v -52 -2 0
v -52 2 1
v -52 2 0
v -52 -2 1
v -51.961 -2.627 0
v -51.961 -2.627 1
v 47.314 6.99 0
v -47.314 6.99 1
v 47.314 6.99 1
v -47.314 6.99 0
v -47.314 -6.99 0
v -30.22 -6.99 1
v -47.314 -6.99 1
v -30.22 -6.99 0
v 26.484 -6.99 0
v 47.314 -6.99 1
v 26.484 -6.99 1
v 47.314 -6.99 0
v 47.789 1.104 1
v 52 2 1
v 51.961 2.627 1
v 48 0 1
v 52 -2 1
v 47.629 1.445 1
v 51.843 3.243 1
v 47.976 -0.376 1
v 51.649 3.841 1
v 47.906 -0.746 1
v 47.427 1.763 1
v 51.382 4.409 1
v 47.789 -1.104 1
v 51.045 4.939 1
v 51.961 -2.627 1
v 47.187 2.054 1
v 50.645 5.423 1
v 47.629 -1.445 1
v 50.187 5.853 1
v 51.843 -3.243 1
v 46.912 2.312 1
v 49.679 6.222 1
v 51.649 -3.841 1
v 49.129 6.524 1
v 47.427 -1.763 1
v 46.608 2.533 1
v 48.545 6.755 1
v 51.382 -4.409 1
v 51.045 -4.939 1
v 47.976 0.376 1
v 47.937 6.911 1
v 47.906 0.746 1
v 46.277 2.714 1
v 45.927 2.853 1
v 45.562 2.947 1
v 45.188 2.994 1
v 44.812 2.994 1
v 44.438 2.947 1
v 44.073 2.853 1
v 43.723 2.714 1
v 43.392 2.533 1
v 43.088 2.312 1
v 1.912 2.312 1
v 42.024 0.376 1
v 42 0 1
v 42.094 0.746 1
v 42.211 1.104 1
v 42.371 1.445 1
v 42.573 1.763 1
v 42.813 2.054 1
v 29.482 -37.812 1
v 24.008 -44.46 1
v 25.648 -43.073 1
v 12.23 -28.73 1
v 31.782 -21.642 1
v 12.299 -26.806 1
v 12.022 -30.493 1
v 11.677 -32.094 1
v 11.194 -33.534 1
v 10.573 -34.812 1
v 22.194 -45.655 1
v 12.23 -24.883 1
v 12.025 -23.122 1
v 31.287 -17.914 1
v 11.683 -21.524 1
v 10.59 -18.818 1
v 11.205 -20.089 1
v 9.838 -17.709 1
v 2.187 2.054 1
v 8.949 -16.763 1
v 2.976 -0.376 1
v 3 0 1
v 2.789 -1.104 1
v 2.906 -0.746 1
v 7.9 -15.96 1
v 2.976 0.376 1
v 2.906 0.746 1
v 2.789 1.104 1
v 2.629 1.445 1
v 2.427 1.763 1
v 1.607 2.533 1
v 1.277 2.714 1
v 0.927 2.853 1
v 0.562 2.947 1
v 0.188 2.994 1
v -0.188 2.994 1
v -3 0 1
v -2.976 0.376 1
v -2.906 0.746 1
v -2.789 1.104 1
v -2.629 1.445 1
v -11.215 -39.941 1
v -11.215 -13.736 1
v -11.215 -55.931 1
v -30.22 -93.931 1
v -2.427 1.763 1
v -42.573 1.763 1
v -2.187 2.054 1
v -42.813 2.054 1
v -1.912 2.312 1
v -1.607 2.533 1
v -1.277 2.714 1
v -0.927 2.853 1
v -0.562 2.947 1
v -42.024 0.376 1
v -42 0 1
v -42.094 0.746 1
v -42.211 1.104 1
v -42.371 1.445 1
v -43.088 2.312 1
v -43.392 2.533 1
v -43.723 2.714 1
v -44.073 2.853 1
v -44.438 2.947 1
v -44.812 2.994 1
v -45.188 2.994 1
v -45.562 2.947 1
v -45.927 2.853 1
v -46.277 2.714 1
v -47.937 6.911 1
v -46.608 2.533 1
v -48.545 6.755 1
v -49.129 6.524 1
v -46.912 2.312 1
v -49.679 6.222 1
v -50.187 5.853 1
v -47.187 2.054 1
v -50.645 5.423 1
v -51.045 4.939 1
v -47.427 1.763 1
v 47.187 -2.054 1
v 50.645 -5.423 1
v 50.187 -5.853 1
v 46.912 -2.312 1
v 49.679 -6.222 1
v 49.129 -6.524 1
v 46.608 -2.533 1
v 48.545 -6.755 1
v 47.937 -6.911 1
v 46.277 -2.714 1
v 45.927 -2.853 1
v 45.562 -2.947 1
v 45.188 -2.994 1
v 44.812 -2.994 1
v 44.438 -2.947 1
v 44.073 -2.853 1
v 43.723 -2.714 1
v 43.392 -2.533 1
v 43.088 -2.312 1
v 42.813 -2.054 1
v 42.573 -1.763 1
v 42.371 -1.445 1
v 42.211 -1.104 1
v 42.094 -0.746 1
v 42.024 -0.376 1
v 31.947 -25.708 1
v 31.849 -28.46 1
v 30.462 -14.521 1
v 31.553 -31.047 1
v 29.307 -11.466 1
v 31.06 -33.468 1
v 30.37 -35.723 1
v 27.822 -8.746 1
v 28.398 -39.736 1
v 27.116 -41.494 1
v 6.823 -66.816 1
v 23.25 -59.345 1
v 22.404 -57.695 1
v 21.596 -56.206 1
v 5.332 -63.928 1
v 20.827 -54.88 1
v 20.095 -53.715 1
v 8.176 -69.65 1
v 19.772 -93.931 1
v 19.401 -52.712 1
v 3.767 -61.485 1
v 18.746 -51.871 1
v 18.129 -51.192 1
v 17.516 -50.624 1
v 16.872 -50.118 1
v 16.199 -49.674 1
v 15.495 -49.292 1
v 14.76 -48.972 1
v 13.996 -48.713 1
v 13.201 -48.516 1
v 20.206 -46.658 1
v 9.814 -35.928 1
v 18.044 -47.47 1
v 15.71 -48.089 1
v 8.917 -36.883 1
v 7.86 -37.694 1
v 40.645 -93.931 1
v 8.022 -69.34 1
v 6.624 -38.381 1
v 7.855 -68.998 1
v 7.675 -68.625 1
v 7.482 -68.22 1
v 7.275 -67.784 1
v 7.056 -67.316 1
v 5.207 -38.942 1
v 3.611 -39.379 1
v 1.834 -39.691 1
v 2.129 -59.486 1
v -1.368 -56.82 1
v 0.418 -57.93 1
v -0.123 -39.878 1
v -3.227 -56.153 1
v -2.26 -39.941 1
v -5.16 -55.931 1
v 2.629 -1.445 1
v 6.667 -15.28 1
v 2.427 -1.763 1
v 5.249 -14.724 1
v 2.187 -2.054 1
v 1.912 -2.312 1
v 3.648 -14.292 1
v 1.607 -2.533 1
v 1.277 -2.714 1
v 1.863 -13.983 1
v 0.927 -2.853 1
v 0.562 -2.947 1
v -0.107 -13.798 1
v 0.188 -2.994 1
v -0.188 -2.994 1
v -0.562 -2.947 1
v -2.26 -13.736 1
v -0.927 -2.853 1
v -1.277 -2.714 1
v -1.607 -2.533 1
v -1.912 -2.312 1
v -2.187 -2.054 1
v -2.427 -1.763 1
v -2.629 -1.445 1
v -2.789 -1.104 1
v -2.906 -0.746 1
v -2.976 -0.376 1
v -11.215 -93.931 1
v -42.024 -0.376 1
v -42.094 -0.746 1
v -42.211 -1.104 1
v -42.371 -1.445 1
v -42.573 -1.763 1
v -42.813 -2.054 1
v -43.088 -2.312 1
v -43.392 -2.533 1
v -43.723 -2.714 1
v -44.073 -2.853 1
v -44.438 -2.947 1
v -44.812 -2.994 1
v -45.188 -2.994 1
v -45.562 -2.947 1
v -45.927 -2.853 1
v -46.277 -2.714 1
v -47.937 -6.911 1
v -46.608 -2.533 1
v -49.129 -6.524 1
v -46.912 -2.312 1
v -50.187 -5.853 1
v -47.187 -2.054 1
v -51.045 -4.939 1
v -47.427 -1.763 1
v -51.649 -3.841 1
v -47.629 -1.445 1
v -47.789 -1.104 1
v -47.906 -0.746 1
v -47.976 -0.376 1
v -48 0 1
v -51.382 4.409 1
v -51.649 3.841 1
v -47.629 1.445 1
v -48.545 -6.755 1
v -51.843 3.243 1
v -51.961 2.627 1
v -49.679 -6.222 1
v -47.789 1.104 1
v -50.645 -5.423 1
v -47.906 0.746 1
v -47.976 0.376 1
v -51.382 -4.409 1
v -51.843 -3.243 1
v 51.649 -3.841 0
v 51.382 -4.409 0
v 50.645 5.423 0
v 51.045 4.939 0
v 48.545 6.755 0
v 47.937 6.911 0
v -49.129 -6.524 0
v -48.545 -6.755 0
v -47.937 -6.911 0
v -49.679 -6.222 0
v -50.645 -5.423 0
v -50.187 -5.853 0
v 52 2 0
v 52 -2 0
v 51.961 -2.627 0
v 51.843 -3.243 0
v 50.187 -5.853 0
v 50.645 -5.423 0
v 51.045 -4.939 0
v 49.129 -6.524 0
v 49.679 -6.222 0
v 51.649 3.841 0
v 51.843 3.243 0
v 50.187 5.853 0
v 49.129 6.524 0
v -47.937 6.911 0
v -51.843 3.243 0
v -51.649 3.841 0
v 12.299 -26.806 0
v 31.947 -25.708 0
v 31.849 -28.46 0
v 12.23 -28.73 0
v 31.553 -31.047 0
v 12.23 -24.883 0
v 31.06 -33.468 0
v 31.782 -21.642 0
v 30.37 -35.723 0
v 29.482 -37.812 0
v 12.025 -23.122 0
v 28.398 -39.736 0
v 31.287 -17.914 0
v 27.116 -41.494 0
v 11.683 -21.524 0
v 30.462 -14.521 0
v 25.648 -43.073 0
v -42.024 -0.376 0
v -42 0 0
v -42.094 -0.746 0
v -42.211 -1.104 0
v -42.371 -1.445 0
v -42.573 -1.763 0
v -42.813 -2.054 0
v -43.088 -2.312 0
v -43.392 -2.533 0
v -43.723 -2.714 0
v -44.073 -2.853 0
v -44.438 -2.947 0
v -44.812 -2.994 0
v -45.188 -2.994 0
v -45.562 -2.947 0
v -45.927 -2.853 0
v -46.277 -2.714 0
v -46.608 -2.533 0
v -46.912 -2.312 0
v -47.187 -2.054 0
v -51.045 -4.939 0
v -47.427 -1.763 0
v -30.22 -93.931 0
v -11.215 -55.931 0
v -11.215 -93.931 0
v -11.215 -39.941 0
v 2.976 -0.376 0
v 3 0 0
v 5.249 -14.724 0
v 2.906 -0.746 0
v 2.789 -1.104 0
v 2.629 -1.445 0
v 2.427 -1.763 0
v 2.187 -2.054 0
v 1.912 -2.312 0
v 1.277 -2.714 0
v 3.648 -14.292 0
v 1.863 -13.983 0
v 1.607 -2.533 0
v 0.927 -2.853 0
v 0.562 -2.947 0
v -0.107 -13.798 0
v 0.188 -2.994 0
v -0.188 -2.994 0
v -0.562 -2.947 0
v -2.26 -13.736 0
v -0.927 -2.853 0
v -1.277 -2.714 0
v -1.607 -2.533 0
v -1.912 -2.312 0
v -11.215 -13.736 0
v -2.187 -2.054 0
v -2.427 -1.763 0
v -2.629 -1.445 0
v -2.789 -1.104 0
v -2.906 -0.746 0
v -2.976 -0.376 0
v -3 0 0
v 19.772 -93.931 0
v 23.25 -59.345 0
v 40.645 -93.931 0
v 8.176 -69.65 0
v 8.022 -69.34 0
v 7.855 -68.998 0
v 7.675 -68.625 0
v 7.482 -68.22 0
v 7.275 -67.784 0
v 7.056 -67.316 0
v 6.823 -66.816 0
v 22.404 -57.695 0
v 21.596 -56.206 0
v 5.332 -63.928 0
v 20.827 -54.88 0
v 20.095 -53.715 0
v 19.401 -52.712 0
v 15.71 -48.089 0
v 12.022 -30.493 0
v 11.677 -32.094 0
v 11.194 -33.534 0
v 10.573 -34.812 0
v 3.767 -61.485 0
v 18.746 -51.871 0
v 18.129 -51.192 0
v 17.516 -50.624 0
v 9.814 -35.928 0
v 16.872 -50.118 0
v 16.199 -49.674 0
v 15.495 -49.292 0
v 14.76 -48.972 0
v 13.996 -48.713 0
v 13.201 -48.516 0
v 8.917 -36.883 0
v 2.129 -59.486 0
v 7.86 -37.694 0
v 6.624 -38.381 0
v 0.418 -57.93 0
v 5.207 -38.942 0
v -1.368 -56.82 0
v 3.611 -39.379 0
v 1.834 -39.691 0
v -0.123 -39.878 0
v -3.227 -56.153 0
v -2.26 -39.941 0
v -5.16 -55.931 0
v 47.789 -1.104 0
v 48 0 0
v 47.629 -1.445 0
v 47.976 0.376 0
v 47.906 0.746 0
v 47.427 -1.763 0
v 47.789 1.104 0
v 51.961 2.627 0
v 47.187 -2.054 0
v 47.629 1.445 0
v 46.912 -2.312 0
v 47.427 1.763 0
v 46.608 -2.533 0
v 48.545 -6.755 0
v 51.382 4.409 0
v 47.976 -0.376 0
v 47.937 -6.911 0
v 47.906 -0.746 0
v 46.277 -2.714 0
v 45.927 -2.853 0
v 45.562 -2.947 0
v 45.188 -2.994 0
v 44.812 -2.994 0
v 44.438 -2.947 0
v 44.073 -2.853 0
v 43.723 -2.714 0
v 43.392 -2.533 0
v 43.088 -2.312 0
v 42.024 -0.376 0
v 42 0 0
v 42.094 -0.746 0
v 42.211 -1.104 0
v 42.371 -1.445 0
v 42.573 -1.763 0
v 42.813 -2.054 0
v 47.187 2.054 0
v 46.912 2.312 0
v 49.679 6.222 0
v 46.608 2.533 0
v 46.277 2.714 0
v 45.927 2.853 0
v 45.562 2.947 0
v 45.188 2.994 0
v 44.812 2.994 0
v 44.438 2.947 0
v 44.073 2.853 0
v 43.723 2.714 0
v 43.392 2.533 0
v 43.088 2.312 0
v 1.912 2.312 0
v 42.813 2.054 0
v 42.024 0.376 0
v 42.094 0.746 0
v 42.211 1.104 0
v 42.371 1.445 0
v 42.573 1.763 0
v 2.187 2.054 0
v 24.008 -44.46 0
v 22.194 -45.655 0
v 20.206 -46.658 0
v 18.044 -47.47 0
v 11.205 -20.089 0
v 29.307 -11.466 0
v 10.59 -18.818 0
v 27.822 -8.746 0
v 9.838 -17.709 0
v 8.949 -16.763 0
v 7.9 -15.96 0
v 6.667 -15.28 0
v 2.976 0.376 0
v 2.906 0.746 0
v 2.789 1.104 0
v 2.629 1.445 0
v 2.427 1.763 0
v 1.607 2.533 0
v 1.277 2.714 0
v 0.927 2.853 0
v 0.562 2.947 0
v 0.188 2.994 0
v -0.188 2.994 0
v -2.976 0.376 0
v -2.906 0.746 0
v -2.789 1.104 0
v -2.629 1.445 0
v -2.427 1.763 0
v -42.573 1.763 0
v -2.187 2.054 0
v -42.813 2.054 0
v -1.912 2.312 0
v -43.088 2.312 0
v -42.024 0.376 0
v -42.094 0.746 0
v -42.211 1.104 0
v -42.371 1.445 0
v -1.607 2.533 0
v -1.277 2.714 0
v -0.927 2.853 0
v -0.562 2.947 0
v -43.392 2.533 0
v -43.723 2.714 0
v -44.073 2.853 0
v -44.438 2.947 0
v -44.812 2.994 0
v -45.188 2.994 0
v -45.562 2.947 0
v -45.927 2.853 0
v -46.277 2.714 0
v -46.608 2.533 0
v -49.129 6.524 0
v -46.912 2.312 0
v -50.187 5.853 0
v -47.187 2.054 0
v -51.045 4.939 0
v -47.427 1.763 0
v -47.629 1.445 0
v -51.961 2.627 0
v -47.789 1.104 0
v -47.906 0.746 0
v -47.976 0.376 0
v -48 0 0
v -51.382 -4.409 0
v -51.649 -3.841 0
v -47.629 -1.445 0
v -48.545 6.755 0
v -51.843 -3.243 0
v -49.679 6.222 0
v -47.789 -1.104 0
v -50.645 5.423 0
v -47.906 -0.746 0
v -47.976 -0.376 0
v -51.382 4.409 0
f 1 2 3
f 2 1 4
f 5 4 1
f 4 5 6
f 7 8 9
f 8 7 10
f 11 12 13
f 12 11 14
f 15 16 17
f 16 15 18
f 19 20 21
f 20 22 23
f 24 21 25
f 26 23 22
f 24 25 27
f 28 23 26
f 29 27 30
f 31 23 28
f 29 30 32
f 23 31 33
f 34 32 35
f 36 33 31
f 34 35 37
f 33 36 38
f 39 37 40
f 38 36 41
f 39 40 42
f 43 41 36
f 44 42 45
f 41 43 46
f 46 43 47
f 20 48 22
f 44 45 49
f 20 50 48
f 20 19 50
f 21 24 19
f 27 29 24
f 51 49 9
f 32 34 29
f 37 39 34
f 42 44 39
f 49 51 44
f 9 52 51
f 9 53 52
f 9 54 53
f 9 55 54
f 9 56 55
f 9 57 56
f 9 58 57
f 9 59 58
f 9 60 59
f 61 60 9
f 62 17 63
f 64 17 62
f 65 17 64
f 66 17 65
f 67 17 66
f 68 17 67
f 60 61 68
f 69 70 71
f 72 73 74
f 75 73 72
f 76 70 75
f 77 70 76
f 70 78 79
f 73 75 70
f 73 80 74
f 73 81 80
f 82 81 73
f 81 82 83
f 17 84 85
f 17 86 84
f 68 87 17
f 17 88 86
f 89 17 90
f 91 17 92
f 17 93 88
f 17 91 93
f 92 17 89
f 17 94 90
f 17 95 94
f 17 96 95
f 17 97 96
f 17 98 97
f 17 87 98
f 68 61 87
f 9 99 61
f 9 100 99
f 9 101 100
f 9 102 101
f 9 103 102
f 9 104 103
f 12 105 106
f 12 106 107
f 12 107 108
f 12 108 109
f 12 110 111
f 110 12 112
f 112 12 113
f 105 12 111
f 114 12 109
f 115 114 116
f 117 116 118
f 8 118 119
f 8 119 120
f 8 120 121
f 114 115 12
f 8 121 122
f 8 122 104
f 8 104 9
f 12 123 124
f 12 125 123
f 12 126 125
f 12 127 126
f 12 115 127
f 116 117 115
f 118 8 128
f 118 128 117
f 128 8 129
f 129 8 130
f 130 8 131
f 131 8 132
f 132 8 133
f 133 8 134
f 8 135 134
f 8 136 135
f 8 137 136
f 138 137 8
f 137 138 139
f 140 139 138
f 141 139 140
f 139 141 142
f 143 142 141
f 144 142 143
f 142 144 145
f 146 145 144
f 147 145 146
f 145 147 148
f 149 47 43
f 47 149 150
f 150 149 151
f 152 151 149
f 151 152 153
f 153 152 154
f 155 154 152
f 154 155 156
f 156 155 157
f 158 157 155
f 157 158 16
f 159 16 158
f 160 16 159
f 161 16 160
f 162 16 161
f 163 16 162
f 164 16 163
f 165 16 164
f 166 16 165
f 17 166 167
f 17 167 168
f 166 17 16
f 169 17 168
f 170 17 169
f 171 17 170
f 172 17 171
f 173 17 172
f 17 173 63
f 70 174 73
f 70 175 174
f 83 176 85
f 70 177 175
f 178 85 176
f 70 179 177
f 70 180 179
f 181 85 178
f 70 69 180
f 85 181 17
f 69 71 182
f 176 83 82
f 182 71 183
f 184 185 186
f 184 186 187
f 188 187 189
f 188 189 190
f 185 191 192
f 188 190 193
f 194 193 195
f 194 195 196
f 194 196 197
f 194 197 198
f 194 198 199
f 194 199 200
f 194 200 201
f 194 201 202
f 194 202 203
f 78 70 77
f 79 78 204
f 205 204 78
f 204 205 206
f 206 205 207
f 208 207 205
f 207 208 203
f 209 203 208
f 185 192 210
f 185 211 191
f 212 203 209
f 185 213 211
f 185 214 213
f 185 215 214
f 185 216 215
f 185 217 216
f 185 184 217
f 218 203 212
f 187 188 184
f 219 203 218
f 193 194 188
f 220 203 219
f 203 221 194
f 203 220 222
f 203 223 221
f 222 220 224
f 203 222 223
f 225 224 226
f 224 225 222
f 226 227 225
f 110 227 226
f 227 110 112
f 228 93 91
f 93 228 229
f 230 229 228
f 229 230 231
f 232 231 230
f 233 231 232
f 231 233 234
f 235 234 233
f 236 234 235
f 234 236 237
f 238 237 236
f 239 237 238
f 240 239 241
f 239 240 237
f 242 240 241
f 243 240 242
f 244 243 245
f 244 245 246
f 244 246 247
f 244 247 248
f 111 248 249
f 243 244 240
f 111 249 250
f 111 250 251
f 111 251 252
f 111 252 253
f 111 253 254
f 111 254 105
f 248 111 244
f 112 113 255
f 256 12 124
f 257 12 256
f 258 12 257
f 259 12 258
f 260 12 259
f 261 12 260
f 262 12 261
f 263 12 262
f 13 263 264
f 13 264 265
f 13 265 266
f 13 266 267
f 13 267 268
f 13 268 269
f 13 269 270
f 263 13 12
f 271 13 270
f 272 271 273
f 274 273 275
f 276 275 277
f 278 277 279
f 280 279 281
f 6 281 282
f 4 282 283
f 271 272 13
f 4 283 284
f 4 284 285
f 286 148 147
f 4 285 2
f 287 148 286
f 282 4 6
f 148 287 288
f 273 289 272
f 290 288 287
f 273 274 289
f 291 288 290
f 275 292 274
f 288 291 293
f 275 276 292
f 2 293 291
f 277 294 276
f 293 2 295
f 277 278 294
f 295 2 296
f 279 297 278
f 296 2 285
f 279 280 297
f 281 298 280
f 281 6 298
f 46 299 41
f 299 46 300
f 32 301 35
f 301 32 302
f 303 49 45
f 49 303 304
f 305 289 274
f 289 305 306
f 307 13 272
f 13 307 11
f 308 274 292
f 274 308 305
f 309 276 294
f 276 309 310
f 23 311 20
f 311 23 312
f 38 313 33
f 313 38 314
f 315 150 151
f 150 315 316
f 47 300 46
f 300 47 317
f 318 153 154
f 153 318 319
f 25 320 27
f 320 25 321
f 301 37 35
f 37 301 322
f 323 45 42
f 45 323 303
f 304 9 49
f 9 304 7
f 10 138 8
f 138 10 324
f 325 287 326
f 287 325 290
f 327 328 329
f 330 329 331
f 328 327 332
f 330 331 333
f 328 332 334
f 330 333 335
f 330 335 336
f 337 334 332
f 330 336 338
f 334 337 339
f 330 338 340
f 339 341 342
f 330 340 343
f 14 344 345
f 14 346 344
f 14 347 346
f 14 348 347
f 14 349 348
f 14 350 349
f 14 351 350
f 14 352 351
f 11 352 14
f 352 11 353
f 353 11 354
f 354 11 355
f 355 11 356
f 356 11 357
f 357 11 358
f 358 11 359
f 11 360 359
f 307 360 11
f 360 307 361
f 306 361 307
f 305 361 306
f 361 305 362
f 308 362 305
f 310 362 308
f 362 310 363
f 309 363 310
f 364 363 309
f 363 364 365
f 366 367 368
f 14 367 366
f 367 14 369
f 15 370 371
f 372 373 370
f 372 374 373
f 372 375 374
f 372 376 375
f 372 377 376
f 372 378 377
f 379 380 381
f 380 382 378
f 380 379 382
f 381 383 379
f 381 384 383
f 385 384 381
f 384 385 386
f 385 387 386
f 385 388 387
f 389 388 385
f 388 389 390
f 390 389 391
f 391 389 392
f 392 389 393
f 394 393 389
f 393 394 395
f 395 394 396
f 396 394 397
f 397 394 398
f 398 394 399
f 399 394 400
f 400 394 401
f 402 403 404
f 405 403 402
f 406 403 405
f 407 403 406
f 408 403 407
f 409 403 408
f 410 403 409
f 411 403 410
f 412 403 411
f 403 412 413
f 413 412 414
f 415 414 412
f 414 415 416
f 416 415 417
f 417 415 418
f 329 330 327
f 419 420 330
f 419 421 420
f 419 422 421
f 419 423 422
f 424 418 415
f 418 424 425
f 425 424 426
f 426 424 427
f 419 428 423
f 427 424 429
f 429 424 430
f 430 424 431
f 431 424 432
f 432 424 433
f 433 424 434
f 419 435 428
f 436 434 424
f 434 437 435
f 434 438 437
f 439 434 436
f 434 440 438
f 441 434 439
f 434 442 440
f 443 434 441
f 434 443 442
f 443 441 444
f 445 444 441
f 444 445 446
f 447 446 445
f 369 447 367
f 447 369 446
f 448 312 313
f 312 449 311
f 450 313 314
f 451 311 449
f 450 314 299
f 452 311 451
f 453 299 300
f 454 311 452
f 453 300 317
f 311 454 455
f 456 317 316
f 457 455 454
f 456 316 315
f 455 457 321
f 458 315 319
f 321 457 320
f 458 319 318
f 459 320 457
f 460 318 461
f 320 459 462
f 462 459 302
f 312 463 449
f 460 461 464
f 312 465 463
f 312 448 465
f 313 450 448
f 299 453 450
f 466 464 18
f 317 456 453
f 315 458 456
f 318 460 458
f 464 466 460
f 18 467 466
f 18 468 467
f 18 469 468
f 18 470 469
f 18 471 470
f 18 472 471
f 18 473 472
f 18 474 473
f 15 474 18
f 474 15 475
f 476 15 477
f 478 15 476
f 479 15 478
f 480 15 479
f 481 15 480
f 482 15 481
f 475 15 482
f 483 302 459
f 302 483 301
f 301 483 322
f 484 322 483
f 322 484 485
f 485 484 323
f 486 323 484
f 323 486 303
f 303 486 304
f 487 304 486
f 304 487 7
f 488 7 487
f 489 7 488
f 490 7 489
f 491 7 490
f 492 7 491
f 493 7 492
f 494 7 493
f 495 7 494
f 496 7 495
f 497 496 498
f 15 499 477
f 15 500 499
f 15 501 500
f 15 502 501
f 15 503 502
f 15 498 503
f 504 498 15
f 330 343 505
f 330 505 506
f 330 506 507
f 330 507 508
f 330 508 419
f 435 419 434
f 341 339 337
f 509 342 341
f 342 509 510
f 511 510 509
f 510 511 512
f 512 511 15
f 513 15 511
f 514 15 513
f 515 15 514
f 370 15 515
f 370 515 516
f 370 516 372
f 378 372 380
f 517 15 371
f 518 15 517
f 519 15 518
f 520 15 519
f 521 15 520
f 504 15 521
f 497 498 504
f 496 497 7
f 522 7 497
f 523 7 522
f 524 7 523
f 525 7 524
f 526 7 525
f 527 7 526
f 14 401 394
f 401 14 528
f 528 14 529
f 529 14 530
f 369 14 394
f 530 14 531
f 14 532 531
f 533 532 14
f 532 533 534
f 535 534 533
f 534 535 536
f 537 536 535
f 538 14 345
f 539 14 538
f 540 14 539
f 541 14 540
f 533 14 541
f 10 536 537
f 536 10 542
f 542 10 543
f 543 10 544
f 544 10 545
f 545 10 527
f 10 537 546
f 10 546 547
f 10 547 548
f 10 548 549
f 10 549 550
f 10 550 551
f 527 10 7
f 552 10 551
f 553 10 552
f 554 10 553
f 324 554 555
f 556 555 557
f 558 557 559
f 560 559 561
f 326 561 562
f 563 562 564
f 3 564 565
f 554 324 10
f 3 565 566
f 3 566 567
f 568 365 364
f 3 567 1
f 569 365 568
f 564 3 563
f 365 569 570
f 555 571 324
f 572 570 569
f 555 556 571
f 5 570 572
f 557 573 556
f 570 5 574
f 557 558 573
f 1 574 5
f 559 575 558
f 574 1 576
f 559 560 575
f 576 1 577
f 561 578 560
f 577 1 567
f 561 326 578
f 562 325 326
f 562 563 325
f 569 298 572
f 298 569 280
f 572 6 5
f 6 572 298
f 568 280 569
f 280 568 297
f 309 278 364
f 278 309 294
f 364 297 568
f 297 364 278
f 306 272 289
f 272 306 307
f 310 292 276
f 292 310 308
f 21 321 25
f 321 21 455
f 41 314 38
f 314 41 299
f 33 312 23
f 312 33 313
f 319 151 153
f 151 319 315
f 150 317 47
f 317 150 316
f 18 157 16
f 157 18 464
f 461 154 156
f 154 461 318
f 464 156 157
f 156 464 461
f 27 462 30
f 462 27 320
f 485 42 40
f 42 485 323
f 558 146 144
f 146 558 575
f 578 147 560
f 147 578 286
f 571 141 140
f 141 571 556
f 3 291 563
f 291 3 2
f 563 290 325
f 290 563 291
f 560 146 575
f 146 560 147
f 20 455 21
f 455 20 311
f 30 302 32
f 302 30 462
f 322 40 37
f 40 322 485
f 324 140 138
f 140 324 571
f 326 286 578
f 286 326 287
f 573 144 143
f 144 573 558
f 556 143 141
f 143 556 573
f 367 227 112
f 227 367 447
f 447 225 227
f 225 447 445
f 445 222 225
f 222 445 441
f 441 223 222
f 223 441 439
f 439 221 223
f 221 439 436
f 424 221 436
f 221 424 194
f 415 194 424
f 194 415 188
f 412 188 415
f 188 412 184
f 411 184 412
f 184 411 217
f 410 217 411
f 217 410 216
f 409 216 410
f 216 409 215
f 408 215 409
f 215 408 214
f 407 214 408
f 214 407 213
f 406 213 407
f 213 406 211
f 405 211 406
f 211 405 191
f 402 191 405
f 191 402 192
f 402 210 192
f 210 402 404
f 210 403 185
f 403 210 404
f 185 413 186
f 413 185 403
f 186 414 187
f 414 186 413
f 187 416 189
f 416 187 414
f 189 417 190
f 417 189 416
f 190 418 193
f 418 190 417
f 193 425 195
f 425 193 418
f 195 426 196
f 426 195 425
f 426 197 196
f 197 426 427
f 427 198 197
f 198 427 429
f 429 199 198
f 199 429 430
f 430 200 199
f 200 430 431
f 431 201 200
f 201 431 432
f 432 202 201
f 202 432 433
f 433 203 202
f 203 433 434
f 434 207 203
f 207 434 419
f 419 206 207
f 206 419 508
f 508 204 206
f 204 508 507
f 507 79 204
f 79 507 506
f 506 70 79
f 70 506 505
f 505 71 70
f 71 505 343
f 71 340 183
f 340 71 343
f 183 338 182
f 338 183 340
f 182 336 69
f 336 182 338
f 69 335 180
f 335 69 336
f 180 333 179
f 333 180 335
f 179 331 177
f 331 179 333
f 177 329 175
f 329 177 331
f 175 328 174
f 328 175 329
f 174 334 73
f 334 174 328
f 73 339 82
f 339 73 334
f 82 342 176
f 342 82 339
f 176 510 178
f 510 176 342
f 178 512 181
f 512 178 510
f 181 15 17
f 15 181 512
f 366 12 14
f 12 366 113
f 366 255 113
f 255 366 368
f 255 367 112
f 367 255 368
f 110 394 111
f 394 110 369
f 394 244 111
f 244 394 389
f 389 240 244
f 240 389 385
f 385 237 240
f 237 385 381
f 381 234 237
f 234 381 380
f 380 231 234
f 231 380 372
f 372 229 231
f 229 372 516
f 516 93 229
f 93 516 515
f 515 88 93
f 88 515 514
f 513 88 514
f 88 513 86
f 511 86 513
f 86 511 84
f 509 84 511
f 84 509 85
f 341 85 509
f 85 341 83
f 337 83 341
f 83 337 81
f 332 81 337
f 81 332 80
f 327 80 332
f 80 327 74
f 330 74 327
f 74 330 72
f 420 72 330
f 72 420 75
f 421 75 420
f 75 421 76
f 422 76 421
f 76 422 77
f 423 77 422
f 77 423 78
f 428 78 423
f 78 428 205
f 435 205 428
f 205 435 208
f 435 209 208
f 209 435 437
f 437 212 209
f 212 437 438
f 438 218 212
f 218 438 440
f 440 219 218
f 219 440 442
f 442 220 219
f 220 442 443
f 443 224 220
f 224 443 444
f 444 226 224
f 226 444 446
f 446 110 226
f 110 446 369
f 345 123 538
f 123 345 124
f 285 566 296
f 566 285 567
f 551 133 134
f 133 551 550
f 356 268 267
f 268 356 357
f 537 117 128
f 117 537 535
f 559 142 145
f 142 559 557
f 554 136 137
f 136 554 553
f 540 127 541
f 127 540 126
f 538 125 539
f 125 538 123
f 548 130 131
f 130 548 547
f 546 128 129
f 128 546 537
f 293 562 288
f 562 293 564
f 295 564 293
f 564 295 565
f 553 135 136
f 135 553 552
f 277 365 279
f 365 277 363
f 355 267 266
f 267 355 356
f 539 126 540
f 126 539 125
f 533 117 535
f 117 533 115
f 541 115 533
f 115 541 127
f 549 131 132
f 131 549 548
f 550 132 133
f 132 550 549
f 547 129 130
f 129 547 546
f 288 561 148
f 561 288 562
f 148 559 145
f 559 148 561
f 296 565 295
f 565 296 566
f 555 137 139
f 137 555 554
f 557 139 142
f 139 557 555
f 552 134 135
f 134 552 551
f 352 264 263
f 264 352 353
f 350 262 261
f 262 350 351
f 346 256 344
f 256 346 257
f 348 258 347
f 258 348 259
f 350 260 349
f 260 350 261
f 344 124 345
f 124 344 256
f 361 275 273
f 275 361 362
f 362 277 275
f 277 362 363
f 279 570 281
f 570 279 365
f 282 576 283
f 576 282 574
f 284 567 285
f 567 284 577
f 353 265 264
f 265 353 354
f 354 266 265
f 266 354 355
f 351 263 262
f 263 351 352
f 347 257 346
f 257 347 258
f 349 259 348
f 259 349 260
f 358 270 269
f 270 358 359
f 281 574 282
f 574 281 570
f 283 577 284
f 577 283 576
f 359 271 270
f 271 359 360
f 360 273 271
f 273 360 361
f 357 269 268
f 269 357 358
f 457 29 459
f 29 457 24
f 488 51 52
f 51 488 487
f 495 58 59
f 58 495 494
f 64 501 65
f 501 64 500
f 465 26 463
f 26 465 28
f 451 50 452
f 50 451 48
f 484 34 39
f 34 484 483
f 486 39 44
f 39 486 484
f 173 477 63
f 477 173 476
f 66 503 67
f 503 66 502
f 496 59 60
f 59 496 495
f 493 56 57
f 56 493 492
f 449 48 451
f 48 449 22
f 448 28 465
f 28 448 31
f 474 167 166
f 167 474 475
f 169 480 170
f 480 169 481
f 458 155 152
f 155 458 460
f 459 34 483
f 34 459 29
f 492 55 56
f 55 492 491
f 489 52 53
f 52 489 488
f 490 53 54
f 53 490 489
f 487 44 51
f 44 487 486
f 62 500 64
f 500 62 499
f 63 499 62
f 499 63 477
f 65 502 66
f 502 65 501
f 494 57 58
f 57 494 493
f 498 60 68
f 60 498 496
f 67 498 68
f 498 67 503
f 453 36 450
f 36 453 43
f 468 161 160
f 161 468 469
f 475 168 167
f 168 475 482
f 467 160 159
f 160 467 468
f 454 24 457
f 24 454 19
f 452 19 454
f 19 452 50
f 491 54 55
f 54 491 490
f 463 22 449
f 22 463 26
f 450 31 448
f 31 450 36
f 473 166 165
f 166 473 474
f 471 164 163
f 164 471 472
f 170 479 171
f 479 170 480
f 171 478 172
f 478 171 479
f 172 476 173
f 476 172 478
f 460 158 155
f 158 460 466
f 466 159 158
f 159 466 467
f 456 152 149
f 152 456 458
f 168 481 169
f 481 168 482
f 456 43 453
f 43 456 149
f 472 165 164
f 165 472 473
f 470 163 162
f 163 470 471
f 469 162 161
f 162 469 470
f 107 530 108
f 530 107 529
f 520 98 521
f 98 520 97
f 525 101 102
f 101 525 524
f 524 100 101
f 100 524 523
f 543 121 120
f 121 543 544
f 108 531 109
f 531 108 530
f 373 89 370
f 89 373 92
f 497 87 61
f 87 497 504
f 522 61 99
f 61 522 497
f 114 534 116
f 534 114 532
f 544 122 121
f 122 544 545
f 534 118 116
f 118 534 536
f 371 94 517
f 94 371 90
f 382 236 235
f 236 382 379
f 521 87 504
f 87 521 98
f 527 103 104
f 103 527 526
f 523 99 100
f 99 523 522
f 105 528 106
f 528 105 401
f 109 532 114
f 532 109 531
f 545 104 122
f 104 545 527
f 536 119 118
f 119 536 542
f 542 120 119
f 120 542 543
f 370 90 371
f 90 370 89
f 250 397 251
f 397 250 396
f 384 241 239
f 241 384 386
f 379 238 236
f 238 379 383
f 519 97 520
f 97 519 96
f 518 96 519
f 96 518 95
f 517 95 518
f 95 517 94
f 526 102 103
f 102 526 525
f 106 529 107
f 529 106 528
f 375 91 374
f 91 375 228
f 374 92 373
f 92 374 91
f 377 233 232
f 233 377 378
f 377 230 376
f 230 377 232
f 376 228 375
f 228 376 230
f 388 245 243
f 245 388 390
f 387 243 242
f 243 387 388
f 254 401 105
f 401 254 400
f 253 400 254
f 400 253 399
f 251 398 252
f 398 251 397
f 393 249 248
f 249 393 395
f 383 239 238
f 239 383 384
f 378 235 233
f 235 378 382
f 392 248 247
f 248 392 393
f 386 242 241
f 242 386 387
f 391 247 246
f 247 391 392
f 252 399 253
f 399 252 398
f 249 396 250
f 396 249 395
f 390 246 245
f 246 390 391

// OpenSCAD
$fn = 50;


difference() {
	union() {
		translate(v = [0, 0, 0]) {
			rotate(a = [0, 0, 0]) {
				hull() {
					translate(v = [-47.0000000000, 2.0000000000, 0]) {
						rotate(a = [0, 0, 0]) {
							translate(v = [0, 0, 0]) {
								rotate(a = [0, 0, 0]) {
									cylinder(h = 1, r = 5);
								}
							}
						}
					}
					translate(v = [47.0000000000, 2.0000000000, 0]) {
						rotate(a = [0, 0, 0]) {
							translate(v = [0, 0, 0]) {
								rotate(a = [0, 0, 0]) {
									cylinder(h = 1, r = 5);
								}
							}
						}
					}
					translate(v = [-47.0000000000, -2.0000000000, 0]) {
						rotate(a = [0, 0, 0]) {
							translate(v = [0, 0, 0]) {
								rotate(a = [0, 0, 0]) {
									cylinder(h = 1, r = 5);
								}
							}
						}
					}
					translate(v = [47.0000000000, -2.0000000000, 0]) {
						rotate(a = [0, 0, 0]) {
							translate(v = [0, 0, 0]) {
								rotate(a = [0, 0, 0]) {
									cylinder(h = 1, r = 5);
								}
							}
						}
					}
				}
			}
		}
		translate(v = [0, 0, 0]) {
			rotate(a = [0, 0, 0]) {
				linear_extrude(height = 1) {
					text(font = "DejaVu Sans Mono:style=Bold", halign = "center", size = 95.0000000000, text = "R", valign = "top");
				}
			}
		}
	}
	union() {
		translate(v = [-45.0000000000, 0.0000000000, -125.0000000000]) {
			rotate(a = [0, 0, 0]) {
				cylinder(h = 250, r = 3.0000000000);
			}
		}
		translate(v = [45.0000000000, 0.0000000000, -125.0000000000]) {
			rotate(a = [0, 0, 0]) {
				cylinder(h = 250, r = 3.0000000000);
			}
		}
		translate(v = [45.0000000000, 0.0000000000, -125.0000000000]) {
			rotate(a = [0, 0, 0]) {
				cylinder(h = 250, r = 3.0000000000);
			}
		}
		translate(v = [0, 0, -125.0000000000]) {
			rotate(a = [0, 0, 0]) {
				cylinder(h = 250, r = 3.0000000000);
			}
		}
	}
}
